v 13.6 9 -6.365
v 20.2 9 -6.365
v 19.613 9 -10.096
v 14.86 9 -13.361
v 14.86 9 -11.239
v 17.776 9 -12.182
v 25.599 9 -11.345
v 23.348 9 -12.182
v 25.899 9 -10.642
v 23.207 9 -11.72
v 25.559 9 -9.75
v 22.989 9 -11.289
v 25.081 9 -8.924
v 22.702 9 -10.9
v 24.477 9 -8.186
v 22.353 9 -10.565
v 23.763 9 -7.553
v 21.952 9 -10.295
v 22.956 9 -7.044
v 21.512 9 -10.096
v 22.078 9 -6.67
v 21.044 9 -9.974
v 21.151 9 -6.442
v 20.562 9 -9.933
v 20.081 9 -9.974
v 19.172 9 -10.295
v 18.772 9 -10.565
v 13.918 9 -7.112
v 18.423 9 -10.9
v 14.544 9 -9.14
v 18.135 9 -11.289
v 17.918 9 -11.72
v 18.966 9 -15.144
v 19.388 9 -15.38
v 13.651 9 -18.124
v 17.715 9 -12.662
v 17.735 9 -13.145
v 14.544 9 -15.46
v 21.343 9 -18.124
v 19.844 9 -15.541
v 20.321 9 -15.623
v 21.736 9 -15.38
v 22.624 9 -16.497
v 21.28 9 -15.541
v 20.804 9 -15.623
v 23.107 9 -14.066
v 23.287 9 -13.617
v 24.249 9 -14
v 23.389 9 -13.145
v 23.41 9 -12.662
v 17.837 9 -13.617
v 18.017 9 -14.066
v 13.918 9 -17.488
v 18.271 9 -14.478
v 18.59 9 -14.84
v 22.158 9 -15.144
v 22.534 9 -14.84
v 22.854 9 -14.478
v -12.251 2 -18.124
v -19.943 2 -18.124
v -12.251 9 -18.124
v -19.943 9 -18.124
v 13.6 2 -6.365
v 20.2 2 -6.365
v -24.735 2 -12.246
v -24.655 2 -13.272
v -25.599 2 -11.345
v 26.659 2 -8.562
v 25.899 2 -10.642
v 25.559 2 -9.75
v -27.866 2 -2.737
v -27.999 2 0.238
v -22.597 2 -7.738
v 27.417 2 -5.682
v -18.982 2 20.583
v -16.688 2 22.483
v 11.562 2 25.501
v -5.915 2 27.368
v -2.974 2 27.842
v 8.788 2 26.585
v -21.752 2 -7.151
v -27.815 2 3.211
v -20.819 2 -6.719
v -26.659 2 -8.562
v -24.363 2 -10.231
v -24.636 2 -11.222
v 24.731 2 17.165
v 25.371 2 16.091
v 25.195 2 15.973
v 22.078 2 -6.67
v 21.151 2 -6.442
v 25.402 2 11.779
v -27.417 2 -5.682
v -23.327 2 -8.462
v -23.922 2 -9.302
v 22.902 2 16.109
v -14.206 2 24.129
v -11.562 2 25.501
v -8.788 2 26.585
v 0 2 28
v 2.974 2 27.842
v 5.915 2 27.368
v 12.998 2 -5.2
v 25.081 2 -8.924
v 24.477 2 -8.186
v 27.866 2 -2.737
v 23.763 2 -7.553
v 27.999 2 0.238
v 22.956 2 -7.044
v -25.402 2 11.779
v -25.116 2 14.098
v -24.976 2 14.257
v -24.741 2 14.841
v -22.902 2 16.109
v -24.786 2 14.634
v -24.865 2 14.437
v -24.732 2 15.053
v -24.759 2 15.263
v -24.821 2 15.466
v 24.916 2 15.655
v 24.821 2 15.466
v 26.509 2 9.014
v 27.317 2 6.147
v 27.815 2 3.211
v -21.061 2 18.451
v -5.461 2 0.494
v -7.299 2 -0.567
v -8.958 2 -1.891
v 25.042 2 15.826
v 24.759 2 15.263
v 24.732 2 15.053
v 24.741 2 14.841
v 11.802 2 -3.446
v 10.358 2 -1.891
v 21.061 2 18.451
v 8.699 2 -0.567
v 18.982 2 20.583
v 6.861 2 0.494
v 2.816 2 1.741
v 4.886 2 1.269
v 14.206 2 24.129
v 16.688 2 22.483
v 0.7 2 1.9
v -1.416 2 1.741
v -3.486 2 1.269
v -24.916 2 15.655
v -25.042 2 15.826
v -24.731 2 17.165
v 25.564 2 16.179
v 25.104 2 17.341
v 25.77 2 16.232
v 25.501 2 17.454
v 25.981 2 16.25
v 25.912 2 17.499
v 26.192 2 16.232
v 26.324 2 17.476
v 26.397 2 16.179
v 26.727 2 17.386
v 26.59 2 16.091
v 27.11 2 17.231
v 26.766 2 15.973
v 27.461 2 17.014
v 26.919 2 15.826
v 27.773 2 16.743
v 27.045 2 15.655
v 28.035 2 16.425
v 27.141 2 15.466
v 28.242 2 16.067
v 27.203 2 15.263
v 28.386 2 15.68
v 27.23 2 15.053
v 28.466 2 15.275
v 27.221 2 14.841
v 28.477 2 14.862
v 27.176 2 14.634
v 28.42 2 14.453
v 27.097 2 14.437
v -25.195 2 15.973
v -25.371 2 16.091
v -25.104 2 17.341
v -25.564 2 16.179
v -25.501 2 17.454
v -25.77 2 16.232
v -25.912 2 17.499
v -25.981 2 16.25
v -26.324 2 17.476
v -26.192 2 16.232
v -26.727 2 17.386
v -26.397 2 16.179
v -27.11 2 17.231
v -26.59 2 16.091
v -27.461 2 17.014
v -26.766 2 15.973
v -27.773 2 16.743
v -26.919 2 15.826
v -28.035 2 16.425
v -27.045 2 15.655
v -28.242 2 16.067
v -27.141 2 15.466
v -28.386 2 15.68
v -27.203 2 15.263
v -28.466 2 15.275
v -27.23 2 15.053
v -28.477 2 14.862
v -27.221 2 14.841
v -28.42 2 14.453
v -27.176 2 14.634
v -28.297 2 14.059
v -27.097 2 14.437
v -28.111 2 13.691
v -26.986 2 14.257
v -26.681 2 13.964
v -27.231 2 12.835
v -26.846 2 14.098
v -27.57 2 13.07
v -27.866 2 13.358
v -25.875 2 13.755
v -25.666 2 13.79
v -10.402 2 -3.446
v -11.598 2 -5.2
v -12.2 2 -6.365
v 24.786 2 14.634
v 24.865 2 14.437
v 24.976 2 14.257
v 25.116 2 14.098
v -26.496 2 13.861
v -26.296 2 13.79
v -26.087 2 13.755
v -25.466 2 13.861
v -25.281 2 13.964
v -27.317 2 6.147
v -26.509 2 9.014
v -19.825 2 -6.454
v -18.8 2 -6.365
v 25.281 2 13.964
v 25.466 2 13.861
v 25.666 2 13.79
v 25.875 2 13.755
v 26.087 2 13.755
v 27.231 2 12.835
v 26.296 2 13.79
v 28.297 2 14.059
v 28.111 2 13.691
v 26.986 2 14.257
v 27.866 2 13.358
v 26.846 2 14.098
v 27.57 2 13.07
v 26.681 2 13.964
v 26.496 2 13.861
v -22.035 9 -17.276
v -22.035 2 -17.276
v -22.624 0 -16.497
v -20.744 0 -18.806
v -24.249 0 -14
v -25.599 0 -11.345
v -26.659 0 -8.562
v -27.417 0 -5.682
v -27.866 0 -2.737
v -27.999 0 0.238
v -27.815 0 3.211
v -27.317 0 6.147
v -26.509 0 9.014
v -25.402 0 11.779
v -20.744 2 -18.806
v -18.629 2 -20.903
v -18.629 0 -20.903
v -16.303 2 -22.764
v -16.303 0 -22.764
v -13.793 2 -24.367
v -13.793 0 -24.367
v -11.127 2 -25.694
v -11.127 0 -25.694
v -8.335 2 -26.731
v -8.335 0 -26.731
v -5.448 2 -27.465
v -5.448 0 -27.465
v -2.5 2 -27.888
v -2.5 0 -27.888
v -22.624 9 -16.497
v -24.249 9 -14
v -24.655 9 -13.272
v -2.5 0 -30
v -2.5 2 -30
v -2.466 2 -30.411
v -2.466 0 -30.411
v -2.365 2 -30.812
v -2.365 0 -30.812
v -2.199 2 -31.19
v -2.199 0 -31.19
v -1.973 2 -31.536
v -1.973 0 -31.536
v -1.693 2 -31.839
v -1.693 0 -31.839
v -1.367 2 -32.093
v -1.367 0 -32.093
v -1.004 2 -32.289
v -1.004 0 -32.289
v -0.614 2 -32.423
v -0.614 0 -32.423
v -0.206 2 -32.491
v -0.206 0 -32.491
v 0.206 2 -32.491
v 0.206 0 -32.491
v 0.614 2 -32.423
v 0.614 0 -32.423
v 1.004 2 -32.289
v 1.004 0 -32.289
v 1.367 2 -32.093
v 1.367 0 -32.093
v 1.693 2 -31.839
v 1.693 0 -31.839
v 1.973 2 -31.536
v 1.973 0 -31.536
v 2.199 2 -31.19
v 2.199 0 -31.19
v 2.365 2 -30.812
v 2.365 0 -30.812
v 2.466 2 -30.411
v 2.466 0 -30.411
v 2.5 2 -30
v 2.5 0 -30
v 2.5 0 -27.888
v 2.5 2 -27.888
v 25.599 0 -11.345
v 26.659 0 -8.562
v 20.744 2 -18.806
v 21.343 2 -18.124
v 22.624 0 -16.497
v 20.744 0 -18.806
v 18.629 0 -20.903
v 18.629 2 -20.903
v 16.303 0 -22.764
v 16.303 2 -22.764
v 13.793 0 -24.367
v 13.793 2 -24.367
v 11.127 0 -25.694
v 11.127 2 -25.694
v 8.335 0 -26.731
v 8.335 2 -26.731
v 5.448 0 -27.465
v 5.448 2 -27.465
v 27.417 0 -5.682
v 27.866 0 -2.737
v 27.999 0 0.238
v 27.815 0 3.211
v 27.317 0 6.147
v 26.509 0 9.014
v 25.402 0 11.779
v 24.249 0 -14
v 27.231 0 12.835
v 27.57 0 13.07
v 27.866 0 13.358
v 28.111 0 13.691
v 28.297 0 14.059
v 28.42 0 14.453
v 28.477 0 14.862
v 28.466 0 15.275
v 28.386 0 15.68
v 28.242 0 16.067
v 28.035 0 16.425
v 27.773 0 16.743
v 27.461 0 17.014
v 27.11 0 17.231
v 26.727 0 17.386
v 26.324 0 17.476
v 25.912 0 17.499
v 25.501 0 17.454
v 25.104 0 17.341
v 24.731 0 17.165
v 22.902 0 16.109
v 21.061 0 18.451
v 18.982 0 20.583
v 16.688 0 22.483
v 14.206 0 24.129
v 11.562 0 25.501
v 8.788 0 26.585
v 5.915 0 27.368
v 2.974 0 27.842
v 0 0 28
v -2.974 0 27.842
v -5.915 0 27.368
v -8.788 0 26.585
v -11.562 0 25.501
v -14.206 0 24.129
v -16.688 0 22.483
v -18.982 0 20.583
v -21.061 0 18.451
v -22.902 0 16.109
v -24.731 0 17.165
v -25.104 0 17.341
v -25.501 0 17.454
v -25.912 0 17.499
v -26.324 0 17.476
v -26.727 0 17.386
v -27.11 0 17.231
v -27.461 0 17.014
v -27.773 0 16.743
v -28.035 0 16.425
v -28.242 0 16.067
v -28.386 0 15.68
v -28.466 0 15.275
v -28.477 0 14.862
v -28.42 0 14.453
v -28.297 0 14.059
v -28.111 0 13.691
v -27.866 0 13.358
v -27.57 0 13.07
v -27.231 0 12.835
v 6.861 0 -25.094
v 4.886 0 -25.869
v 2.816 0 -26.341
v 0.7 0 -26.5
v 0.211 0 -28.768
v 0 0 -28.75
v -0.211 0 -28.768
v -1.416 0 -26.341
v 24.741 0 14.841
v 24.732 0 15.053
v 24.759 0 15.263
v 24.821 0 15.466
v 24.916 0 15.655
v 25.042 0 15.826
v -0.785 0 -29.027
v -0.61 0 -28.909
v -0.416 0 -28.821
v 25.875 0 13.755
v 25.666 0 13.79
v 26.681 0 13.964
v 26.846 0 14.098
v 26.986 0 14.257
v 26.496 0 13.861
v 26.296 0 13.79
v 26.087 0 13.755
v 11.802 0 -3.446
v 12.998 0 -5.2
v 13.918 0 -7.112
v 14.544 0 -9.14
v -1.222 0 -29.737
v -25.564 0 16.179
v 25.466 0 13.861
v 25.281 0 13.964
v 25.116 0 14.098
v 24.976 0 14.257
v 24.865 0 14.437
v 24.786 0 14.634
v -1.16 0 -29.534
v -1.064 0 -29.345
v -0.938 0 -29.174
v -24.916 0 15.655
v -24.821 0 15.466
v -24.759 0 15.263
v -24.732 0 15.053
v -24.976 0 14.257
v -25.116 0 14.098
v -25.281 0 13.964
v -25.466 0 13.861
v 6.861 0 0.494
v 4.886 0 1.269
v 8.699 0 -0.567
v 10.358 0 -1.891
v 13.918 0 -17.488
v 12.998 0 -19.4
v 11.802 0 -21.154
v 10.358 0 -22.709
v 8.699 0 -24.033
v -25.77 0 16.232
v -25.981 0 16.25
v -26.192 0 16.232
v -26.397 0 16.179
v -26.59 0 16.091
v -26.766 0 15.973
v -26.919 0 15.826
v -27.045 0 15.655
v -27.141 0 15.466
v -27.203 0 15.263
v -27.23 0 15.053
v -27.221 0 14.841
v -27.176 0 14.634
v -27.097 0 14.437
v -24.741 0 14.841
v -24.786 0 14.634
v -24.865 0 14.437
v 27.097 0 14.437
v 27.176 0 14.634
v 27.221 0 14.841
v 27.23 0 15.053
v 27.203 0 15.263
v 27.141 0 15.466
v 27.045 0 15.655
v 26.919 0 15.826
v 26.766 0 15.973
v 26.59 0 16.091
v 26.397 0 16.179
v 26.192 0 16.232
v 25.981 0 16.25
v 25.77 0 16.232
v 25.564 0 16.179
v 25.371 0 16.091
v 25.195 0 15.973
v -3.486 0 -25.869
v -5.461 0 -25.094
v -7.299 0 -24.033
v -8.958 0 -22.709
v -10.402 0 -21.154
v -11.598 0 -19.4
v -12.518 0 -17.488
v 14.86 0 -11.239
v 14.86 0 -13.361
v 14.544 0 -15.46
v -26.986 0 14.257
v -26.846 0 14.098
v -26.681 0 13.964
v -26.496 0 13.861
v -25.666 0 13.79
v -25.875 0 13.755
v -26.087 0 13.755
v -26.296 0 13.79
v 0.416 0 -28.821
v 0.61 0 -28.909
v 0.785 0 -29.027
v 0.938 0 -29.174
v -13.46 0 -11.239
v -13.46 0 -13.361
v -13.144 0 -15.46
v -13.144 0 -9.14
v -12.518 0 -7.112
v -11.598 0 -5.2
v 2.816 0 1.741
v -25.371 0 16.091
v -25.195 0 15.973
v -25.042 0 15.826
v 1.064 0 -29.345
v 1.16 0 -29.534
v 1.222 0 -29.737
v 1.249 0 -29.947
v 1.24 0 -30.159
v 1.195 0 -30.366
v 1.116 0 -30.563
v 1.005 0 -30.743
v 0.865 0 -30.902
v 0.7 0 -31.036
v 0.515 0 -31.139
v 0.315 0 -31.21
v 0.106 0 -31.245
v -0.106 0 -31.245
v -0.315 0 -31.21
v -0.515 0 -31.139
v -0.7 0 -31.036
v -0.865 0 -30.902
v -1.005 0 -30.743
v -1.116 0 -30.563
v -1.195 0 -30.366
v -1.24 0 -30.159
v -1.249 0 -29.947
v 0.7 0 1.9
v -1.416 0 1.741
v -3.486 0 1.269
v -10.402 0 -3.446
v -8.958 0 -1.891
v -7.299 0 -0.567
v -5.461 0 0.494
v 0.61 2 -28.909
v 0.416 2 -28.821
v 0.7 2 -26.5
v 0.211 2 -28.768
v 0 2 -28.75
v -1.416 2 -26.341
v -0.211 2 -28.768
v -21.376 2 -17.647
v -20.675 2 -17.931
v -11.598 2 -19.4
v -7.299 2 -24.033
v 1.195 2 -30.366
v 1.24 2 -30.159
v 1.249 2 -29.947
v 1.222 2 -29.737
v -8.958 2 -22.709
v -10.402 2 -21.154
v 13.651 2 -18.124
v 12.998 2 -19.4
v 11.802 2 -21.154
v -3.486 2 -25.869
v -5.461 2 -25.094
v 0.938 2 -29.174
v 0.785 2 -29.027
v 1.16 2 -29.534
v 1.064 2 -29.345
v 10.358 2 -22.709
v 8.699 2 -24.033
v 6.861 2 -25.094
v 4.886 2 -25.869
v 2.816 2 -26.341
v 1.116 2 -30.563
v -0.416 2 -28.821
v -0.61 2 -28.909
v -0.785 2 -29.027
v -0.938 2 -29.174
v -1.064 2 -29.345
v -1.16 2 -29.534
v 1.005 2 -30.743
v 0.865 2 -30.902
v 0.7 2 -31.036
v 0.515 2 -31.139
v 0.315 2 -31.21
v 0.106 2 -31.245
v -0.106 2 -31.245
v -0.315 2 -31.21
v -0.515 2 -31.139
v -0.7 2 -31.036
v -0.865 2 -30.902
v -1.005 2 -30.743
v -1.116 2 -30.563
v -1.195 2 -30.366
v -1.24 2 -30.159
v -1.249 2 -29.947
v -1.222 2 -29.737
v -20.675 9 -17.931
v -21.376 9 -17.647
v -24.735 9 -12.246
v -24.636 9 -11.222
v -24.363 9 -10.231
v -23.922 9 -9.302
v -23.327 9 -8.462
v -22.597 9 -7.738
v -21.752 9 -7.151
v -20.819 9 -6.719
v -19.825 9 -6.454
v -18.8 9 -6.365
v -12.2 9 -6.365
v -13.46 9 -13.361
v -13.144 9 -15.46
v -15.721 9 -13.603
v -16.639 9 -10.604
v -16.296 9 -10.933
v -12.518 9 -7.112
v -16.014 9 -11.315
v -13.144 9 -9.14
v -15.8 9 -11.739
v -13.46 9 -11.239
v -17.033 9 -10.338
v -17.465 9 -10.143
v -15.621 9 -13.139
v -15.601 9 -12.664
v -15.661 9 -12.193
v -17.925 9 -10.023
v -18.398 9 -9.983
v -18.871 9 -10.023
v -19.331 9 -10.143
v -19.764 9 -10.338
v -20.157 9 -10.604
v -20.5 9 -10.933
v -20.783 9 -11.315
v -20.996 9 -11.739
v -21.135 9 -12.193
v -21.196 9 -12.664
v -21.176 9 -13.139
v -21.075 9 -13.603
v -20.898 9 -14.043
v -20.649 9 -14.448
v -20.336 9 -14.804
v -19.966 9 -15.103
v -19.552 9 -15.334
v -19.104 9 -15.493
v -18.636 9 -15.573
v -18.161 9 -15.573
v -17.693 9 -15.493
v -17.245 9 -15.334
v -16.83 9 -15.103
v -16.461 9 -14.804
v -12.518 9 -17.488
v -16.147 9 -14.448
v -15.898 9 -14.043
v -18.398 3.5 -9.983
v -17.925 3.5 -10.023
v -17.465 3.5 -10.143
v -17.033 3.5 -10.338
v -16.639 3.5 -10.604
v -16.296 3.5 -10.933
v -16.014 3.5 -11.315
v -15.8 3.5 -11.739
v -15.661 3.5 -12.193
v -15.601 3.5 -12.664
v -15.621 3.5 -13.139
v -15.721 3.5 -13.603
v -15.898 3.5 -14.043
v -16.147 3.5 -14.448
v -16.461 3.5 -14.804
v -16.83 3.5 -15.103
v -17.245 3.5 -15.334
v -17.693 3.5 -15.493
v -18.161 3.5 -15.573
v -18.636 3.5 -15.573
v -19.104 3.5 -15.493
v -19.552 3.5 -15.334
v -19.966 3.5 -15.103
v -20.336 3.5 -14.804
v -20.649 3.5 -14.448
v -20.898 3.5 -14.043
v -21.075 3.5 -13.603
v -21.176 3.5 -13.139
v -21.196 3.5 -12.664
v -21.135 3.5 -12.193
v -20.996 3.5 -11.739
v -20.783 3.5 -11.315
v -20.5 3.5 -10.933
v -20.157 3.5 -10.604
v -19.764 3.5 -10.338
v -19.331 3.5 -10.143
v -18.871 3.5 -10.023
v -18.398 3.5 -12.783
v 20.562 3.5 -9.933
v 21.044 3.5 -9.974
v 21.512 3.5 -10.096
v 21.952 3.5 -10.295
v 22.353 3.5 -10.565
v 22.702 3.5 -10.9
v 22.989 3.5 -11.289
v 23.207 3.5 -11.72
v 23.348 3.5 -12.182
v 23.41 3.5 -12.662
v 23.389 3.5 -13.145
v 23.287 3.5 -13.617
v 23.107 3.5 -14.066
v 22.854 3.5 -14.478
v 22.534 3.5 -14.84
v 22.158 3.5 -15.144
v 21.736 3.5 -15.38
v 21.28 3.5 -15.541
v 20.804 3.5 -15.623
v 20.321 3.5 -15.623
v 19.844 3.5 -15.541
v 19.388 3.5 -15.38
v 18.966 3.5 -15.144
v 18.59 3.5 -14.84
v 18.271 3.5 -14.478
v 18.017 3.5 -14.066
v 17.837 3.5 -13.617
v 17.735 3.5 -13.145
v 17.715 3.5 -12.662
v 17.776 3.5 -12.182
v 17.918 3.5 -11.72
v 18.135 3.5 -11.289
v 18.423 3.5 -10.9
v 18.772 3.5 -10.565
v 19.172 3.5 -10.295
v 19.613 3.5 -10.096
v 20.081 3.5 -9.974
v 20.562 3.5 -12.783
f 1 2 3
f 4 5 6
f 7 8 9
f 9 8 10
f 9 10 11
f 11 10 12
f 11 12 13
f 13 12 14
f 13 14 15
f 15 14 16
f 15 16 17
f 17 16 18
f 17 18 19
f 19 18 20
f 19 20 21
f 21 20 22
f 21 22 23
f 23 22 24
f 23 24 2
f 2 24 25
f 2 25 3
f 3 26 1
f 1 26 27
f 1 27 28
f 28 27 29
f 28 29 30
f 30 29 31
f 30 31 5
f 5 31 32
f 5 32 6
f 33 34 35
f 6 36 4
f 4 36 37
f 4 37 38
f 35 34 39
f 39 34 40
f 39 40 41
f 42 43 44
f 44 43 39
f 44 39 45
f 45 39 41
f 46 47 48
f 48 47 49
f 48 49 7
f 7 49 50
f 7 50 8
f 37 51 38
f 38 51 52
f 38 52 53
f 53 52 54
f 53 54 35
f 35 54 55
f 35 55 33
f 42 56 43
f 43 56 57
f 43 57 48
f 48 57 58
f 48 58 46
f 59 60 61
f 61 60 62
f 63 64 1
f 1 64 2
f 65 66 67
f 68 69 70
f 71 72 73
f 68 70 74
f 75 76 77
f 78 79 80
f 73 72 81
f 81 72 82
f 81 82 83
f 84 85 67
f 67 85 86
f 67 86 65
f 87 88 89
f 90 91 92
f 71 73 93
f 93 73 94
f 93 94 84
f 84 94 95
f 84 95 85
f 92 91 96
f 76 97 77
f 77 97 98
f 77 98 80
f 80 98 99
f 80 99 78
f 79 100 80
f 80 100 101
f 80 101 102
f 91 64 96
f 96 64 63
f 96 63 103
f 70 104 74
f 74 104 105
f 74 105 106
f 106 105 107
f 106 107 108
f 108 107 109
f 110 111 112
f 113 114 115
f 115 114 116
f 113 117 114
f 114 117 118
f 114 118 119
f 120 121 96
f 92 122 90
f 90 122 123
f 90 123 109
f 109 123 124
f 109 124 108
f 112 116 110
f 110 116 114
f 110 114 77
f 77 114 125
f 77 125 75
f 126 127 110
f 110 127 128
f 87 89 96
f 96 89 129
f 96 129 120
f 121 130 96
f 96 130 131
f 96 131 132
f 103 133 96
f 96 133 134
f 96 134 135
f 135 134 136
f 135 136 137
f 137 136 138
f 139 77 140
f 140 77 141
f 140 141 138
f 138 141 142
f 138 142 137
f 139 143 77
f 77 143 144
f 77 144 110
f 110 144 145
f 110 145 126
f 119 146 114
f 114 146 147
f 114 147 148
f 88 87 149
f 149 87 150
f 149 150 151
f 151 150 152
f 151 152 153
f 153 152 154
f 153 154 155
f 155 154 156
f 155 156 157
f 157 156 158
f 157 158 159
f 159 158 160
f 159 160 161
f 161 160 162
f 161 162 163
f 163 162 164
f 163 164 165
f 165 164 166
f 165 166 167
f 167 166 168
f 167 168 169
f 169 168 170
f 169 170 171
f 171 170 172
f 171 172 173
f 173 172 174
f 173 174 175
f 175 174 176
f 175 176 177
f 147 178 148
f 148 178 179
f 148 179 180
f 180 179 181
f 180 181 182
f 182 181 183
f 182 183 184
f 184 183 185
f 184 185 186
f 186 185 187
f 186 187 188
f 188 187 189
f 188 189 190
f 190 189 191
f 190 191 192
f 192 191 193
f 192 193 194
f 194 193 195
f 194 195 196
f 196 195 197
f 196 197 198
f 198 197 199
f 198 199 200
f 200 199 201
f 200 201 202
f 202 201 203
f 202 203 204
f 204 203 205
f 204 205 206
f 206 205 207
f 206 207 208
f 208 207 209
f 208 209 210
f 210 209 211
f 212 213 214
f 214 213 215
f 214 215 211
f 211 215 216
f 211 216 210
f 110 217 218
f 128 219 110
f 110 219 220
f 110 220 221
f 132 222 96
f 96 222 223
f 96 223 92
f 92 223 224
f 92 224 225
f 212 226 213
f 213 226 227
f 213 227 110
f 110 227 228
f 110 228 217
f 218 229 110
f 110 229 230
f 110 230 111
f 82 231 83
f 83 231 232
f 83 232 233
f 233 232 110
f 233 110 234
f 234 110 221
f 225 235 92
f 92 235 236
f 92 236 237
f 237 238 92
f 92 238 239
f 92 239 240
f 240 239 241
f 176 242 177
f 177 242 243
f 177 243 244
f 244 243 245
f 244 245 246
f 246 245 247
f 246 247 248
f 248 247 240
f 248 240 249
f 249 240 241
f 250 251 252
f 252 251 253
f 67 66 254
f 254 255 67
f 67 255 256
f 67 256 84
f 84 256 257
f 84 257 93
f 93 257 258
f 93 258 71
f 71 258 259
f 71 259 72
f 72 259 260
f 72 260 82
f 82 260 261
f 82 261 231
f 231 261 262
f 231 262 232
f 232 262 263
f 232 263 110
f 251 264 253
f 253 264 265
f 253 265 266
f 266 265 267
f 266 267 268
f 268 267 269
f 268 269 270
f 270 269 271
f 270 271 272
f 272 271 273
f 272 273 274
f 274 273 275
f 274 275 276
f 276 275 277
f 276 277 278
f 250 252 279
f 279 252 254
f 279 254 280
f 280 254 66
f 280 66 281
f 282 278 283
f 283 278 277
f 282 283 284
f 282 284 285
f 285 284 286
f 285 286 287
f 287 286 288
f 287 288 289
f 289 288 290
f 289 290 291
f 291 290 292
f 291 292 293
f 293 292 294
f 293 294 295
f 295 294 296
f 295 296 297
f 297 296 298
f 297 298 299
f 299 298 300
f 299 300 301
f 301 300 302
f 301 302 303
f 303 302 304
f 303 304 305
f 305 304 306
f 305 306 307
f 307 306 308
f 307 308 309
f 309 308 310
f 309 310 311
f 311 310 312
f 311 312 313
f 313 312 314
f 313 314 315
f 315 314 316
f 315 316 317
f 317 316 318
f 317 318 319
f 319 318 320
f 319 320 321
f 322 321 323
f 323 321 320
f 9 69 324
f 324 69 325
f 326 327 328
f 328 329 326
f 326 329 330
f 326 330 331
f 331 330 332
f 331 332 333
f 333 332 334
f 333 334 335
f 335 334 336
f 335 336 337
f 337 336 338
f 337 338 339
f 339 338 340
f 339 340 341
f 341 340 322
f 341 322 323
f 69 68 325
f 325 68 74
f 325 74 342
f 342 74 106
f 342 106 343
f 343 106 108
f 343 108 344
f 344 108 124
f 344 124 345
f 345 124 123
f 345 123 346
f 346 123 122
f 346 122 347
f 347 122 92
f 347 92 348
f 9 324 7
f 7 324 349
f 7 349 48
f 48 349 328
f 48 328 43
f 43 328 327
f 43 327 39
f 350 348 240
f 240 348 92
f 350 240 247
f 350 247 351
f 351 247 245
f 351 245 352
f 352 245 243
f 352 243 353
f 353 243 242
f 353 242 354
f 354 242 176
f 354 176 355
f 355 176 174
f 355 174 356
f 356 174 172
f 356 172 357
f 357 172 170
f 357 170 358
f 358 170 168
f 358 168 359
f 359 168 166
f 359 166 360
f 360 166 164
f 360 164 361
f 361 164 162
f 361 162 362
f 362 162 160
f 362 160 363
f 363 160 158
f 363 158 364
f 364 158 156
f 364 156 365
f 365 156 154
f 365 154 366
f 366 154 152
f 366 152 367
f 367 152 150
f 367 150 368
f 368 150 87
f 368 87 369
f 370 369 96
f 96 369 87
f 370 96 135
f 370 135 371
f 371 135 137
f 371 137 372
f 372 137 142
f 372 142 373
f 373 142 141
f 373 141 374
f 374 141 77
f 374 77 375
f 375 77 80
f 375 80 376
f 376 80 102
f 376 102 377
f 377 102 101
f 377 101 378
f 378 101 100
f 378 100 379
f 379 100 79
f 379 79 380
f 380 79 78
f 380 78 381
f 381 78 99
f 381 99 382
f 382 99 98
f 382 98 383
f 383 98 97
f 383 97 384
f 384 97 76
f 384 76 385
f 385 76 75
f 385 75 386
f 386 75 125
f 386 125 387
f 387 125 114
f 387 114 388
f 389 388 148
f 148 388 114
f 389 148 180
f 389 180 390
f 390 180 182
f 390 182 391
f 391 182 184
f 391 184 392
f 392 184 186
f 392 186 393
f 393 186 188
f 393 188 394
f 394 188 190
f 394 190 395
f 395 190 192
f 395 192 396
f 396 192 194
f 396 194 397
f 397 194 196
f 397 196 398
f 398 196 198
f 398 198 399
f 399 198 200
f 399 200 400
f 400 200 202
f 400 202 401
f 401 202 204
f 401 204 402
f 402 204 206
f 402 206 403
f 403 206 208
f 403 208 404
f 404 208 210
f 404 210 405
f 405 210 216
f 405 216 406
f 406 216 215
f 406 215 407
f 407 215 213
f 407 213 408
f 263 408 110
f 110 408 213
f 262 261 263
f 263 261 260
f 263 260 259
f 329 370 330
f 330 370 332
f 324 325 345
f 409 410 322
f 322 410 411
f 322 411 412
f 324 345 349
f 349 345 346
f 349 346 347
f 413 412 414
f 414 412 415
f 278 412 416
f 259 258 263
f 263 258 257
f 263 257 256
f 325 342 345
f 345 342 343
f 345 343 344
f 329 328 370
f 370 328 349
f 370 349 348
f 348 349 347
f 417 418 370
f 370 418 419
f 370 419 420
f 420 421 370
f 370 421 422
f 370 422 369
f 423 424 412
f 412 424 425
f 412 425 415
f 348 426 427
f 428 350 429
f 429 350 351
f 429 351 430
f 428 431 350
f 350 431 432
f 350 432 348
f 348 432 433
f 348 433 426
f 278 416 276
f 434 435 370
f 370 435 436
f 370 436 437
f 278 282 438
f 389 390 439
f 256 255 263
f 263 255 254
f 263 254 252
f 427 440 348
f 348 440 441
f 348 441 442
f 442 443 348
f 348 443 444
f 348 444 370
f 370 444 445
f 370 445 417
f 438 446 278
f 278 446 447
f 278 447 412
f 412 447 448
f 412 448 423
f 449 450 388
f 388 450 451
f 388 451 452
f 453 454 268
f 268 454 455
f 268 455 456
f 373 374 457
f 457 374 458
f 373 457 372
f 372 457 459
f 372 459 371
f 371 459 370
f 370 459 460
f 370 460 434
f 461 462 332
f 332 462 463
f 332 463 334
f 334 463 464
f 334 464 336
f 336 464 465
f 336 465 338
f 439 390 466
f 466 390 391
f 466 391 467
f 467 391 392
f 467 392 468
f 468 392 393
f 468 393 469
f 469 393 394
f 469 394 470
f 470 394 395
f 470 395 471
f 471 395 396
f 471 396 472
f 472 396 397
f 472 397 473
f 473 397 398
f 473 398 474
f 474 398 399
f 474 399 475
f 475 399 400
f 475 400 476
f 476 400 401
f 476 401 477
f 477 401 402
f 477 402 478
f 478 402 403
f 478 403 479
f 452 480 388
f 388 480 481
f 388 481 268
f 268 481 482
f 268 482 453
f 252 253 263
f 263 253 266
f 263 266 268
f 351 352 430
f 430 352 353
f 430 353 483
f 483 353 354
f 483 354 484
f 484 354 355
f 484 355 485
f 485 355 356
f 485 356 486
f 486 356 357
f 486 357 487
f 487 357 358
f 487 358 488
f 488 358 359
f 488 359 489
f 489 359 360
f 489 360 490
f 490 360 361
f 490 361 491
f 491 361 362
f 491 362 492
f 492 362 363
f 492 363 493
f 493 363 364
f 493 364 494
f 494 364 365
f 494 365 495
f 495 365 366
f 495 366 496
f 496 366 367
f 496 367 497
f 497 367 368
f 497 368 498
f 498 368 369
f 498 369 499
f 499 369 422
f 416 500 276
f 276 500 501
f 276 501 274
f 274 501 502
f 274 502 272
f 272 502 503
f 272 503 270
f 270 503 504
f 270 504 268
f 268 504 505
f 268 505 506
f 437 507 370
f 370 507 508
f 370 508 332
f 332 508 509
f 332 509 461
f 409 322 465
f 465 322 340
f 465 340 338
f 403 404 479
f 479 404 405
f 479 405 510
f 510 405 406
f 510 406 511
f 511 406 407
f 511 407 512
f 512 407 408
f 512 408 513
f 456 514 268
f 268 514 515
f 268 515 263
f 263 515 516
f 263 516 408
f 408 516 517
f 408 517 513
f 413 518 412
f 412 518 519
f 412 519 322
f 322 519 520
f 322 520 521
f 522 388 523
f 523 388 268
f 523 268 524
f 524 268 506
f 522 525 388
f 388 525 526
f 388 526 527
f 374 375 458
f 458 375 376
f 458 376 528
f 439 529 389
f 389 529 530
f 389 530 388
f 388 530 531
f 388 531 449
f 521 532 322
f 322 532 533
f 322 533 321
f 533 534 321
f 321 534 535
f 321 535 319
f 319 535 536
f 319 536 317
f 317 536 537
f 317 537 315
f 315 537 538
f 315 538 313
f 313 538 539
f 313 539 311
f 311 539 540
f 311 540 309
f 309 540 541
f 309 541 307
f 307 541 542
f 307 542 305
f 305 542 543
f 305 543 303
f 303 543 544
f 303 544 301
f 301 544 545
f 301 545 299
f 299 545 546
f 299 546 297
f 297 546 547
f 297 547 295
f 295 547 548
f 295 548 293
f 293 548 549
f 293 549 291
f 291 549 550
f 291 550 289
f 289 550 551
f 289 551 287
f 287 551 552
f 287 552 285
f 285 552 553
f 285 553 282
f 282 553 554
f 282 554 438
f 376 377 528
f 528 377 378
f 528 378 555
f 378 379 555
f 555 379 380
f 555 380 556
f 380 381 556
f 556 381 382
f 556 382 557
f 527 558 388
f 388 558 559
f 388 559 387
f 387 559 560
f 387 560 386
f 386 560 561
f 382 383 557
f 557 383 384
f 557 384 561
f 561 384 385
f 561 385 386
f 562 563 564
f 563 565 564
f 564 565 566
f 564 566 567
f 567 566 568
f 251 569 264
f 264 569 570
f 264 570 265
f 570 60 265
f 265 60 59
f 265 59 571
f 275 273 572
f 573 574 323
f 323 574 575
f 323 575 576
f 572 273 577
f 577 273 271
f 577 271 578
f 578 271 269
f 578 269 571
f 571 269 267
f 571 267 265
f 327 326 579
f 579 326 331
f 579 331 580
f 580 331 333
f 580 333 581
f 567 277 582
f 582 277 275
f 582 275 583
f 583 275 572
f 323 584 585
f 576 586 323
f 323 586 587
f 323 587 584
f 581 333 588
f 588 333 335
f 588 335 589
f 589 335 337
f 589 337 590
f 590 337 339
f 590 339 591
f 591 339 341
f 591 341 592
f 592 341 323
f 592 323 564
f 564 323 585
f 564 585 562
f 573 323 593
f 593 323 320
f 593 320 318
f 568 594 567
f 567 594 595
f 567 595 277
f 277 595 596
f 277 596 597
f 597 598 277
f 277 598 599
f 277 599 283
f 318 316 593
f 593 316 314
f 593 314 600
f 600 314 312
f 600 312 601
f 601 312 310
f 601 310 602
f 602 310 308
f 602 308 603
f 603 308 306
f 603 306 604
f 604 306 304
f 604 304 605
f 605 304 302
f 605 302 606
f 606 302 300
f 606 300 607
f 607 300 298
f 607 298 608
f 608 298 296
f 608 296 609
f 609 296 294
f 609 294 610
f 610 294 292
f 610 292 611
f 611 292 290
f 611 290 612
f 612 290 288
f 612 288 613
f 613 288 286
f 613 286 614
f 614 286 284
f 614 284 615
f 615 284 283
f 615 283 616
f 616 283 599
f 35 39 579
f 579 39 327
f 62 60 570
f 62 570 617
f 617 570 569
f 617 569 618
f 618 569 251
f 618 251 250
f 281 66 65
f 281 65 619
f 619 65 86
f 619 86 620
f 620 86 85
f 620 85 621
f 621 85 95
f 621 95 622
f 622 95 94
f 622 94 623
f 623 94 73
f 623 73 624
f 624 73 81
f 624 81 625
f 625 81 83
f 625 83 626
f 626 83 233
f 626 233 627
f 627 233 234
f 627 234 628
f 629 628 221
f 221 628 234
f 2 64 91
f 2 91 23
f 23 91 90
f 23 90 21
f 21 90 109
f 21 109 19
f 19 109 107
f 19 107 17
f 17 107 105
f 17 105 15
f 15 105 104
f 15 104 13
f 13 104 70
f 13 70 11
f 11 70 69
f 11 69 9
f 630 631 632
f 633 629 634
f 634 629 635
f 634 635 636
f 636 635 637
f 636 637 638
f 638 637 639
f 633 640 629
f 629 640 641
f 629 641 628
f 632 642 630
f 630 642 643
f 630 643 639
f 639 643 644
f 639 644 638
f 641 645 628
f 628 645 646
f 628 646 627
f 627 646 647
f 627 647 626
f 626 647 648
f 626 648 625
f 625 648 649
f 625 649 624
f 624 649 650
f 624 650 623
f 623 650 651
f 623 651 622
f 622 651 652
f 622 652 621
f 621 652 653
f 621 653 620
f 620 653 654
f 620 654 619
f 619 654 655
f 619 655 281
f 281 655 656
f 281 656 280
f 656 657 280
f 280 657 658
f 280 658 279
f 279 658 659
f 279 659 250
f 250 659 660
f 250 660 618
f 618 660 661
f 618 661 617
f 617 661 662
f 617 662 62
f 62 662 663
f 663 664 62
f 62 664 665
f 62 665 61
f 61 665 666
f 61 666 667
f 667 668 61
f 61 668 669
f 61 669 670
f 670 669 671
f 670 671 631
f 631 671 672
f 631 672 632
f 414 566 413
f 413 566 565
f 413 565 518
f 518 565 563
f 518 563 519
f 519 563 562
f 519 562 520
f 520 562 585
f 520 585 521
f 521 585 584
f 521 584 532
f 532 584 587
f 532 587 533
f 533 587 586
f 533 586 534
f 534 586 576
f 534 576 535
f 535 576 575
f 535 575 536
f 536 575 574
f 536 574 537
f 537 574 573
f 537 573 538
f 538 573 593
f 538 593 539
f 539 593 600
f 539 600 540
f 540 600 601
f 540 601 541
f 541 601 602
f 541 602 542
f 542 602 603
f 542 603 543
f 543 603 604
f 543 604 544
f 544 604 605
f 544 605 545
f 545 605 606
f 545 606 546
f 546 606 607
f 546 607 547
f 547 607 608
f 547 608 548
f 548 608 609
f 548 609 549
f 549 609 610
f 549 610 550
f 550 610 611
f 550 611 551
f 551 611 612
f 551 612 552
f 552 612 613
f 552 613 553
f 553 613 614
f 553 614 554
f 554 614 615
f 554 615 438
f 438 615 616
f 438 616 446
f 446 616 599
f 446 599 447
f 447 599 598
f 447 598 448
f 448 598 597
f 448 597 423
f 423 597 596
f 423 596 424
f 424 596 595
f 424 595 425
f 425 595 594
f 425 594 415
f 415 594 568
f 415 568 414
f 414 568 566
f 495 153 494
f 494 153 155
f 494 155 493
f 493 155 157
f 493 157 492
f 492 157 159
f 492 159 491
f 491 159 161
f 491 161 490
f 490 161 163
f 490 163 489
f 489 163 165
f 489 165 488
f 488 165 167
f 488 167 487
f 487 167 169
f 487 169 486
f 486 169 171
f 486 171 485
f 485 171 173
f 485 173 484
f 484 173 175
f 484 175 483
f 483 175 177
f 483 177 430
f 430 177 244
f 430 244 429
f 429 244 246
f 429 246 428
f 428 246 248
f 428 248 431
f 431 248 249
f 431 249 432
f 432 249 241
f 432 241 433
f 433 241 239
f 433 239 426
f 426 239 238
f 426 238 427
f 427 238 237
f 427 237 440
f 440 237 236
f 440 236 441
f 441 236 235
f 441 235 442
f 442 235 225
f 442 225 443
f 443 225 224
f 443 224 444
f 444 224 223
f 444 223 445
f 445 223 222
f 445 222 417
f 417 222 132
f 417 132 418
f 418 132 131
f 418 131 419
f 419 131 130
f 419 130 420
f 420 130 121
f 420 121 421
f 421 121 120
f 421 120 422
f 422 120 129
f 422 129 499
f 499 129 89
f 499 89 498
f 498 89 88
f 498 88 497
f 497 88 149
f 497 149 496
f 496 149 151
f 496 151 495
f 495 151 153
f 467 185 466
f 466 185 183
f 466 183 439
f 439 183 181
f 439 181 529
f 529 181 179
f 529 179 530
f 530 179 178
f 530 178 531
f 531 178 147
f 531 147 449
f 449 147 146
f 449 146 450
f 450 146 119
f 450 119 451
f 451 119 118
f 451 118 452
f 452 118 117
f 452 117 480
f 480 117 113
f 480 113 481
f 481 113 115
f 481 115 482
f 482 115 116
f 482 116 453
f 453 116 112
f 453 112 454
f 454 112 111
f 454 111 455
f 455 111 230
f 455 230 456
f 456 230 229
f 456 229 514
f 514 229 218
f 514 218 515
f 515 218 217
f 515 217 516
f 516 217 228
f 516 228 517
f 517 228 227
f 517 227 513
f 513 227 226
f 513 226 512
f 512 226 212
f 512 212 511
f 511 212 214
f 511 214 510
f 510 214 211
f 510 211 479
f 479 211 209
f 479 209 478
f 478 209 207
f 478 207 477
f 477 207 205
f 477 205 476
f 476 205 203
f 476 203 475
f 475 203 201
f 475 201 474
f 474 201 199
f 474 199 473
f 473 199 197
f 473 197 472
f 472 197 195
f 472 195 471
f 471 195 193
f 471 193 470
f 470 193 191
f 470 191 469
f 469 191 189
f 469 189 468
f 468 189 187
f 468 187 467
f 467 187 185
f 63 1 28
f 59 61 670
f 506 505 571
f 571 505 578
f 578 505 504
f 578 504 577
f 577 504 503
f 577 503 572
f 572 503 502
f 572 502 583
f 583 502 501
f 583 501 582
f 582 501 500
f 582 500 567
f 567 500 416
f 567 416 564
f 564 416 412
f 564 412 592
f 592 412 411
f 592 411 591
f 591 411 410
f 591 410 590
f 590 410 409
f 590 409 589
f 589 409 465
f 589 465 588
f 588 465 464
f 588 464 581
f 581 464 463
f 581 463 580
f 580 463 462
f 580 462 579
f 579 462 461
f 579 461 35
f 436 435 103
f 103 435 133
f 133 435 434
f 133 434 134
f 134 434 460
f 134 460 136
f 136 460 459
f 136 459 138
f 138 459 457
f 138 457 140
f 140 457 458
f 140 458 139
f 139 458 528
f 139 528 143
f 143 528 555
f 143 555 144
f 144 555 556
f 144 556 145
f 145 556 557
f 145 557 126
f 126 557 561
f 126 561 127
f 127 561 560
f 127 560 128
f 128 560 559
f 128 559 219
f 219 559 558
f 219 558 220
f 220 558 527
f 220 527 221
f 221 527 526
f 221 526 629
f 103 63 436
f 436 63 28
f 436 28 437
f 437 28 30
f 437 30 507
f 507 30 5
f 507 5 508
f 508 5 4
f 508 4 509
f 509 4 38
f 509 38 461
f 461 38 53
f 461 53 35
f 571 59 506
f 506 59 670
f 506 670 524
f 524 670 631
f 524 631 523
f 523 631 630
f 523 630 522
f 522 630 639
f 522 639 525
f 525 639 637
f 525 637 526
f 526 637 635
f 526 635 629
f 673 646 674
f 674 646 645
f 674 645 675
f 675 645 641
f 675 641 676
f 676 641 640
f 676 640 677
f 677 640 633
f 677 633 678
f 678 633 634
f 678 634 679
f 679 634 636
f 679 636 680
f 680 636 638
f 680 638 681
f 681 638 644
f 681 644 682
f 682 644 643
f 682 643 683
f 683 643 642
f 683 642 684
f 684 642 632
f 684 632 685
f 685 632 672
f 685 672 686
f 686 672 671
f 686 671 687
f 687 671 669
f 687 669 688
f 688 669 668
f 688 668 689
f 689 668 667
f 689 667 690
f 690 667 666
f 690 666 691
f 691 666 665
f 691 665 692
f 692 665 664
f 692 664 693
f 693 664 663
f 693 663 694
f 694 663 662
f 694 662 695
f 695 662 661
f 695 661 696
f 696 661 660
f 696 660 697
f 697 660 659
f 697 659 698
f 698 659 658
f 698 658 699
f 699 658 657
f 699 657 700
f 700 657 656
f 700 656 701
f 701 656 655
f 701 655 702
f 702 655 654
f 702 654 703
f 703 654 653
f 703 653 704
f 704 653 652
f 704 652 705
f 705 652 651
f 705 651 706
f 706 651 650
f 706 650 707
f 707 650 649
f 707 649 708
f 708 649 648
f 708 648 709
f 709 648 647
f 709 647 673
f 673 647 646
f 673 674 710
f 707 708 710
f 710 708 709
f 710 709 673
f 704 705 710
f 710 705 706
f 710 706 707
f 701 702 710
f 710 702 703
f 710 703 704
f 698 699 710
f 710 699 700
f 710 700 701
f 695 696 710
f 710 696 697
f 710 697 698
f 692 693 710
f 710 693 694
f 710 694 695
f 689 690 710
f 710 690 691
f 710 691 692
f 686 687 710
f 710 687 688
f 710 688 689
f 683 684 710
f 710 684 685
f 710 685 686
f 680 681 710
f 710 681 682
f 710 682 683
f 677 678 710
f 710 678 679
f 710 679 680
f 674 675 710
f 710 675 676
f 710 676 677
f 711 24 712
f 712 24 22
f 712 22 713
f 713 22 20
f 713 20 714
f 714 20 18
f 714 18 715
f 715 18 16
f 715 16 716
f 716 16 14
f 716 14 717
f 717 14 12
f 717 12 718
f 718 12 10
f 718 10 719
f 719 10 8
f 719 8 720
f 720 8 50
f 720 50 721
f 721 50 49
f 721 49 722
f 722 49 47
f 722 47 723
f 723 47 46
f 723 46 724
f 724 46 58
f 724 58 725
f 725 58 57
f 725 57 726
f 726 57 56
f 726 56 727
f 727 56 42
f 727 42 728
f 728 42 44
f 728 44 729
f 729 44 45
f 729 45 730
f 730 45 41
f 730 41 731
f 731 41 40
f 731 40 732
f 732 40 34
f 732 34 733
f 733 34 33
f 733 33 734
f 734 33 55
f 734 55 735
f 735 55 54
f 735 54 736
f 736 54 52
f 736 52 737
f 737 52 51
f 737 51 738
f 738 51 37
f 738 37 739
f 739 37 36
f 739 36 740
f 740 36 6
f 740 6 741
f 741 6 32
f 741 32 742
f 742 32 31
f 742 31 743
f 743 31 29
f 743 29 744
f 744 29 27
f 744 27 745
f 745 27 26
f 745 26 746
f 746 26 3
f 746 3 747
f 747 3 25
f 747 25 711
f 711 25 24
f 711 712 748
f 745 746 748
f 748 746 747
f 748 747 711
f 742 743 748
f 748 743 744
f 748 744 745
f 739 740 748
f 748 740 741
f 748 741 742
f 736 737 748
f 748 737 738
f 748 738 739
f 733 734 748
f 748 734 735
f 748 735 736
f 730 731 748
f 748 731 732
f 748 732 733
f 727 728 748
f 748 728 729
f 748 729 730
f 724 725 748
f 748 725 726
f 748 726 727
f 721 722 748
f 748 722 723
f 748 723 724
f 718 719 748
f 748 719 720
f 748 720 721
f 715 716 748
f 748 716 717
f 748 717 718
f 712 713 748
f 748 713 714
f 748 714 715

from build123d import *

# Parameters (mm, degrees)
BOSS_EXTRUDE3_DEPTH        = 2
BOSS_EXTRUDE4_START        = 7
BOSS_EXTRUDE4_DEPTH        = 7
F_2_5_2_5_DIAMETER_HOLE2_D = 2.5
M25_CLEARANCE_HOLE2_D      = 28.4
SKETCH27_R                 = 2.8
SKETCH27_R_2               = 2.85
CUT_EXTRUDE7_DEPTH         = 5.5


with BuildPart() as part:
    # Sketch14 → Boss-Extrude3 (new body)
    with BuildSketch(Plane(origin=(0, 2, 0), x_dir=(1, 0, 0), z_dir=(0, 1, 0))):
        with BuildLine():
            Line((-25.401863282, -11.779021258), (-27.230762114, -12.834936491))
            ThreePointArc((-27.230762114, -12.834936491), (-28.145825623, -16.25), (-24.730762114, -17.165063509))
            Line((-24.730762114, -17.165063509), (-22.901863282, -16.109148277))
            ThreePointArc((-22.901863282, -16.109148277), (0, -28), (22.901863282, -16.109148277))
            Line((22.901863282, -16.109148277), (24.730762114, -17.165063509))
            ThreePointArc((24.730762114, -17.165063509), (28.145825623, -16.25), (27.230762114, -12.834936491))
            Line((27.230762114, -12.834936491), (25.401863282, -11.779021258))
            ThreePointArc((25.401863282, -11.779021258), (24.248711306, 14), (2.5, 27.888169535))
            Line((2.5, 27.888169535), (2.5, 30))
            ThreePointArc((2.5, 30), (0, 32.5), (-2.5, 30))
            Line((-2.5, 30), (-2.5, 27.888169535))
            ThreePointArc((-2.5, 27.888169535), (-24.248711306, 14), (-25.401863282, -11.779021258))
        make_face()
    extrude(amount=-BOSS_EXTRUDE3_DEPTH)

    # Sketch15 → Boss-Extrude4 (add)
    with BuildSketch(Plane(origin=(0, 2, 0), x_dir=(-1, 0, 0), z_dir=(0, 1, 0)).offset(BOSS_EXTRUDE4_START)):
        with BuildLine():
            Line((-20.2, -6.36507512), (18.8, -6.36507512))
            ThreePointArc((18.8, -6.36507512), (23.327173423, -8.462287904), (24.654830029, -13.271750307))
            ThreePointArc((24.654830029, -13.271750307), (23.430757061, -15.329697439), (22.035331707, -17.275536361))
            ThreePointArc((22.035331707, -17.275536361), (21.029921495, -17.800071223), (19.943097949, -18.123801199))
            Line((19.943097949, -18.123801199), (-21.343097949, -18.123801199))
            ThreePointArc((-21.343097949, -18.123801199), (-23.915273063, -14.562270232), (-25.898699677, -10.64224389))
            ThreePointArc((-25.898699677, -10.64224389), (-23.762630724, -7.553317405), (-20.2, -6.36507512))
        make_face()
    extrude(amount=-BOSS_EXTRUDE4_DEPTH)

    # Ø2.5 (2.5) Diameter Hole2 (through all)
    with Locations(Plane(origin=(0, 2, 0), x_dir=(1, 0, 0), z_dir=(0, 1, 0))):
        with Locations((-25.980762114, -15), (25.980762114, -15), (0, 30)):
            Hole(F_2_5_2_5_DIAMETER_HOLE2_D / 2)

    # M25 Clearance Hole2 (through all)
    with Locations(Plane(origin=(0, 0, 0), x_dir=(-1, 0, 0), z_dir=(0, -1, 0))):
        with Locations((-0.7, 12.3)):
            Hole(M25_CLEARANCE_HOLE2_D / 2)

    # Sketch27 → Cut-Extrude7 (cut)
    with BuildSketch(Plane(origin=(0, 9, 0), x_dir=(1, 0, 0), z_dir=(0, 1, 0))):
        with Locations(Location((-18.398233243, 12.782862889, 0), (0, 0, 270))):
            Circle(SKETCH27_R)
        with Locations(Location((20.562204281, 12.782862889, 0), (0, 0, 270))):
            Circle(SKETCH27_R_2)
    extrude(amount=-CUT_EXTRUDE7_DEPTH, mode=Mode.SUBTRACT)


solid = part.part
